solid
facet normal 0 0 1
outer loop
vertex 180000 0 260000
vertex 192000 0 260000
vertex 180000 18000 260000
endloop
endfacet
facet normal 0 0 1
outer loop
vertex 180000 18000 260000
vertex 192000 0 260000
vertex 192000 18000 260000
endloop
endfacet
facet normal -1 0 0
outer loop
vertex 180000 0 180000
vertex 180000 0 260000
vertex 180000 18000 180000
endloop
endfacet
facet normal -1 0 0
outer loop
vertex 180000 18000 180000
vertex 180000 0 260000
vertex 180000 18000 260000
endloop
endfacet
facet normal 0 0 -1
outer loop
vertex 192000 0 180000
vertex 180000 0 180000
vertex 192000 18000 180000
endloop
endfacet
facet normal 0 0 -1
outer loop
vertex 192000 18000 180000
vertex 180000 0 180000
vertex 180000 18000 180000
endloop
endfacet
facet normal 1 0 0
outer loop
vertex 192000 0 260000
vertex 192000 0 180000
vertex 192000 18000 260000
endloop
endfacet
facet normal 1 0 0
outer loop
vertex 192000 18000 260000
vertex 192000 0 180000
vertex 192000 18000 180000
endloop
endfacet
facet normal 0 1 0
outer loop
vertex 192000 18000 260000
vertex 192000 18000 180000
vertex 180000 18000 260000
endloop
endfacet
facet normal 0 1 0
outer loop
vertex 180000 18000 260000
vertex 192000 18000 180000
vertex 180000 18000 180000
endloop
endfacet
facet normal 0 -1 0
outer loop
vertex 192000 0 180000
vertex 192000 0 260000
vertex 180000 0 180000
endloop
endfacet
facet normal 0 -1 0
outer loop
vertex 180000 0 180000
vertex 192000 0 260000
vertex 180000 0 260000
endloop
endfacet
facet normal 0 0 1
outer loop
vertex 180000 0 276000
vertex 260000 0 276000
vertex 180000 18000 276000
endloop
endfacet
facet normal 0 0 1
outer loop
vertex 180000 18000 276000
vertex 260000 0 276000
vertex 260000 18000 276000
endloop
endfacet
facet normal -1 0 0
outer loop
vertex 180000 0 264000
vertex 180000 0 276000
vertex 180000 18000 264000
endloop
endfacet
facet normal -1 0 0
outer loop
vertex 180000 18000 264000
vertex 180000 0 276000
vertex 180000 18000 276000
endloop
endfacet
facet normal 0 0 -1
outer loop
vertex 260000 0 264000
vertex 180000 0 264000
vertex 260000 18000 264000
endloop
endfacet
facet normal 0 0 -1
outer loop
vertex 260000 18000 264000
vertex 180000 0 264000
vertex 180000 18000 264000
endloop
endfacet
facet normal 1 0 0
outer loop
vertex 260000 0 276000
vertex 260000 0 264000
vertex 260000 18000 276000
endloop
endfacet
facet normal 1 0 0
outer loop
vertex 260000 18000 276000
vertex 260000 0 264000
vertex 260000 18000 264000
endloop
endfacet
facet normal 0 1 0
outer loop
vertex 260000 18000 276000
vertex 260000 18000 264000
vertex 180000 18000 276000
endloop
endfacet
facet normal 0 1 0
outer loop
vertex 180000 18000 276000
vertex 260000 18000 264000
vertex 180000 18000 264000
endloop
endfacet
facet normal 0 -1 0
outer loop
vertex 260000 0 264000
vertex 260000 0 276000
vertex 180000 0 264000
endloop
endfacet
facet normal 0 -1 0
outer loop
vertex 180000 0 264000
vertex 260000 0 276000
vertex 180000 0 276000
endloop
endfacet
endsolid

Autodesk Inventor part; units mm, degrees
ref_plane "YZ Plane" through (0, 0, 0) normal (1, 0, 0) x (0, 1, 0)
ref_plane "XZ Plane" through (0, 0, 0) normal (0, 1, 0) x (-1, 0, 0)
ref_plane "XY Plane" through (0, 0, 0) normal (0, 0, 1) x (1, 0, 0)
sketch "Boceto1" plane through (0, 0, 0) normal (0, 1, 0) x (-1, 0, 0)
  line L0 (-180000, 276000) -> (-260000, 276000)
  line L1 (-260000, 276000) -> (-260000, 264000)
  line L2 (-260000, 264000) -> (-180000, 264000)
  line L3 (-180000, 264000) -> (-180000, 276000)
  line L4 (-180000, 260000) -> (-192000, 260000)
  line L5 (-192000, 260000) -> (-192000, 180000)
  line L6 (-192000, 180000) -> (-180000, 180000)
  line L7 (-180000, 180000) -> (-180000, 260000)
  line L8 (-548000, 0) -> (0, 0)
  line L9 (0, 0) -> (0, 456000)
  line L10 (-548000, 456000) -> (-548000, 0)
  line L11 (-548000, 456000) -> (0, 456000)
  point P0 (0, 0)
  dimension "d0" = 80000
  dimension "d1" = 12000
  dimension "d2" = 12000
  dimension "d3" = 80000
  dimension "d13" = 180000
  dimension "d14" = 288000
  dimension "d15" = 548000
  dimension "d17" = 4000
  dimension "d19" = 180000
  dimension "d20" = 180000
  dimension "d21" = 456000
extrude "Extrusión1" add sketch "Boceto1" along normal blind 18000 contours L3 L2 L1 L0 | L7 L6 L5 L4
sketch "Boceto2" plane through (0, 0, 0) normal (0, 1, 0) x (-1, 0, 0)
  line L0 (0, 0) -> (0, 456000) projected
  line L1 (-548000, 456000) -> (0, 456000) projected
  line L2 (-548000, 456000) -> (-548000, 0) projected
  line L3 (-548000, 0) -> (0, 0) projected
  point P0 (0, 0)
  dimension "d24" = 548000
  dimension "d25" = 456000
extrude "Extrusión2" [suppressed]
properties part number "2edificios"
